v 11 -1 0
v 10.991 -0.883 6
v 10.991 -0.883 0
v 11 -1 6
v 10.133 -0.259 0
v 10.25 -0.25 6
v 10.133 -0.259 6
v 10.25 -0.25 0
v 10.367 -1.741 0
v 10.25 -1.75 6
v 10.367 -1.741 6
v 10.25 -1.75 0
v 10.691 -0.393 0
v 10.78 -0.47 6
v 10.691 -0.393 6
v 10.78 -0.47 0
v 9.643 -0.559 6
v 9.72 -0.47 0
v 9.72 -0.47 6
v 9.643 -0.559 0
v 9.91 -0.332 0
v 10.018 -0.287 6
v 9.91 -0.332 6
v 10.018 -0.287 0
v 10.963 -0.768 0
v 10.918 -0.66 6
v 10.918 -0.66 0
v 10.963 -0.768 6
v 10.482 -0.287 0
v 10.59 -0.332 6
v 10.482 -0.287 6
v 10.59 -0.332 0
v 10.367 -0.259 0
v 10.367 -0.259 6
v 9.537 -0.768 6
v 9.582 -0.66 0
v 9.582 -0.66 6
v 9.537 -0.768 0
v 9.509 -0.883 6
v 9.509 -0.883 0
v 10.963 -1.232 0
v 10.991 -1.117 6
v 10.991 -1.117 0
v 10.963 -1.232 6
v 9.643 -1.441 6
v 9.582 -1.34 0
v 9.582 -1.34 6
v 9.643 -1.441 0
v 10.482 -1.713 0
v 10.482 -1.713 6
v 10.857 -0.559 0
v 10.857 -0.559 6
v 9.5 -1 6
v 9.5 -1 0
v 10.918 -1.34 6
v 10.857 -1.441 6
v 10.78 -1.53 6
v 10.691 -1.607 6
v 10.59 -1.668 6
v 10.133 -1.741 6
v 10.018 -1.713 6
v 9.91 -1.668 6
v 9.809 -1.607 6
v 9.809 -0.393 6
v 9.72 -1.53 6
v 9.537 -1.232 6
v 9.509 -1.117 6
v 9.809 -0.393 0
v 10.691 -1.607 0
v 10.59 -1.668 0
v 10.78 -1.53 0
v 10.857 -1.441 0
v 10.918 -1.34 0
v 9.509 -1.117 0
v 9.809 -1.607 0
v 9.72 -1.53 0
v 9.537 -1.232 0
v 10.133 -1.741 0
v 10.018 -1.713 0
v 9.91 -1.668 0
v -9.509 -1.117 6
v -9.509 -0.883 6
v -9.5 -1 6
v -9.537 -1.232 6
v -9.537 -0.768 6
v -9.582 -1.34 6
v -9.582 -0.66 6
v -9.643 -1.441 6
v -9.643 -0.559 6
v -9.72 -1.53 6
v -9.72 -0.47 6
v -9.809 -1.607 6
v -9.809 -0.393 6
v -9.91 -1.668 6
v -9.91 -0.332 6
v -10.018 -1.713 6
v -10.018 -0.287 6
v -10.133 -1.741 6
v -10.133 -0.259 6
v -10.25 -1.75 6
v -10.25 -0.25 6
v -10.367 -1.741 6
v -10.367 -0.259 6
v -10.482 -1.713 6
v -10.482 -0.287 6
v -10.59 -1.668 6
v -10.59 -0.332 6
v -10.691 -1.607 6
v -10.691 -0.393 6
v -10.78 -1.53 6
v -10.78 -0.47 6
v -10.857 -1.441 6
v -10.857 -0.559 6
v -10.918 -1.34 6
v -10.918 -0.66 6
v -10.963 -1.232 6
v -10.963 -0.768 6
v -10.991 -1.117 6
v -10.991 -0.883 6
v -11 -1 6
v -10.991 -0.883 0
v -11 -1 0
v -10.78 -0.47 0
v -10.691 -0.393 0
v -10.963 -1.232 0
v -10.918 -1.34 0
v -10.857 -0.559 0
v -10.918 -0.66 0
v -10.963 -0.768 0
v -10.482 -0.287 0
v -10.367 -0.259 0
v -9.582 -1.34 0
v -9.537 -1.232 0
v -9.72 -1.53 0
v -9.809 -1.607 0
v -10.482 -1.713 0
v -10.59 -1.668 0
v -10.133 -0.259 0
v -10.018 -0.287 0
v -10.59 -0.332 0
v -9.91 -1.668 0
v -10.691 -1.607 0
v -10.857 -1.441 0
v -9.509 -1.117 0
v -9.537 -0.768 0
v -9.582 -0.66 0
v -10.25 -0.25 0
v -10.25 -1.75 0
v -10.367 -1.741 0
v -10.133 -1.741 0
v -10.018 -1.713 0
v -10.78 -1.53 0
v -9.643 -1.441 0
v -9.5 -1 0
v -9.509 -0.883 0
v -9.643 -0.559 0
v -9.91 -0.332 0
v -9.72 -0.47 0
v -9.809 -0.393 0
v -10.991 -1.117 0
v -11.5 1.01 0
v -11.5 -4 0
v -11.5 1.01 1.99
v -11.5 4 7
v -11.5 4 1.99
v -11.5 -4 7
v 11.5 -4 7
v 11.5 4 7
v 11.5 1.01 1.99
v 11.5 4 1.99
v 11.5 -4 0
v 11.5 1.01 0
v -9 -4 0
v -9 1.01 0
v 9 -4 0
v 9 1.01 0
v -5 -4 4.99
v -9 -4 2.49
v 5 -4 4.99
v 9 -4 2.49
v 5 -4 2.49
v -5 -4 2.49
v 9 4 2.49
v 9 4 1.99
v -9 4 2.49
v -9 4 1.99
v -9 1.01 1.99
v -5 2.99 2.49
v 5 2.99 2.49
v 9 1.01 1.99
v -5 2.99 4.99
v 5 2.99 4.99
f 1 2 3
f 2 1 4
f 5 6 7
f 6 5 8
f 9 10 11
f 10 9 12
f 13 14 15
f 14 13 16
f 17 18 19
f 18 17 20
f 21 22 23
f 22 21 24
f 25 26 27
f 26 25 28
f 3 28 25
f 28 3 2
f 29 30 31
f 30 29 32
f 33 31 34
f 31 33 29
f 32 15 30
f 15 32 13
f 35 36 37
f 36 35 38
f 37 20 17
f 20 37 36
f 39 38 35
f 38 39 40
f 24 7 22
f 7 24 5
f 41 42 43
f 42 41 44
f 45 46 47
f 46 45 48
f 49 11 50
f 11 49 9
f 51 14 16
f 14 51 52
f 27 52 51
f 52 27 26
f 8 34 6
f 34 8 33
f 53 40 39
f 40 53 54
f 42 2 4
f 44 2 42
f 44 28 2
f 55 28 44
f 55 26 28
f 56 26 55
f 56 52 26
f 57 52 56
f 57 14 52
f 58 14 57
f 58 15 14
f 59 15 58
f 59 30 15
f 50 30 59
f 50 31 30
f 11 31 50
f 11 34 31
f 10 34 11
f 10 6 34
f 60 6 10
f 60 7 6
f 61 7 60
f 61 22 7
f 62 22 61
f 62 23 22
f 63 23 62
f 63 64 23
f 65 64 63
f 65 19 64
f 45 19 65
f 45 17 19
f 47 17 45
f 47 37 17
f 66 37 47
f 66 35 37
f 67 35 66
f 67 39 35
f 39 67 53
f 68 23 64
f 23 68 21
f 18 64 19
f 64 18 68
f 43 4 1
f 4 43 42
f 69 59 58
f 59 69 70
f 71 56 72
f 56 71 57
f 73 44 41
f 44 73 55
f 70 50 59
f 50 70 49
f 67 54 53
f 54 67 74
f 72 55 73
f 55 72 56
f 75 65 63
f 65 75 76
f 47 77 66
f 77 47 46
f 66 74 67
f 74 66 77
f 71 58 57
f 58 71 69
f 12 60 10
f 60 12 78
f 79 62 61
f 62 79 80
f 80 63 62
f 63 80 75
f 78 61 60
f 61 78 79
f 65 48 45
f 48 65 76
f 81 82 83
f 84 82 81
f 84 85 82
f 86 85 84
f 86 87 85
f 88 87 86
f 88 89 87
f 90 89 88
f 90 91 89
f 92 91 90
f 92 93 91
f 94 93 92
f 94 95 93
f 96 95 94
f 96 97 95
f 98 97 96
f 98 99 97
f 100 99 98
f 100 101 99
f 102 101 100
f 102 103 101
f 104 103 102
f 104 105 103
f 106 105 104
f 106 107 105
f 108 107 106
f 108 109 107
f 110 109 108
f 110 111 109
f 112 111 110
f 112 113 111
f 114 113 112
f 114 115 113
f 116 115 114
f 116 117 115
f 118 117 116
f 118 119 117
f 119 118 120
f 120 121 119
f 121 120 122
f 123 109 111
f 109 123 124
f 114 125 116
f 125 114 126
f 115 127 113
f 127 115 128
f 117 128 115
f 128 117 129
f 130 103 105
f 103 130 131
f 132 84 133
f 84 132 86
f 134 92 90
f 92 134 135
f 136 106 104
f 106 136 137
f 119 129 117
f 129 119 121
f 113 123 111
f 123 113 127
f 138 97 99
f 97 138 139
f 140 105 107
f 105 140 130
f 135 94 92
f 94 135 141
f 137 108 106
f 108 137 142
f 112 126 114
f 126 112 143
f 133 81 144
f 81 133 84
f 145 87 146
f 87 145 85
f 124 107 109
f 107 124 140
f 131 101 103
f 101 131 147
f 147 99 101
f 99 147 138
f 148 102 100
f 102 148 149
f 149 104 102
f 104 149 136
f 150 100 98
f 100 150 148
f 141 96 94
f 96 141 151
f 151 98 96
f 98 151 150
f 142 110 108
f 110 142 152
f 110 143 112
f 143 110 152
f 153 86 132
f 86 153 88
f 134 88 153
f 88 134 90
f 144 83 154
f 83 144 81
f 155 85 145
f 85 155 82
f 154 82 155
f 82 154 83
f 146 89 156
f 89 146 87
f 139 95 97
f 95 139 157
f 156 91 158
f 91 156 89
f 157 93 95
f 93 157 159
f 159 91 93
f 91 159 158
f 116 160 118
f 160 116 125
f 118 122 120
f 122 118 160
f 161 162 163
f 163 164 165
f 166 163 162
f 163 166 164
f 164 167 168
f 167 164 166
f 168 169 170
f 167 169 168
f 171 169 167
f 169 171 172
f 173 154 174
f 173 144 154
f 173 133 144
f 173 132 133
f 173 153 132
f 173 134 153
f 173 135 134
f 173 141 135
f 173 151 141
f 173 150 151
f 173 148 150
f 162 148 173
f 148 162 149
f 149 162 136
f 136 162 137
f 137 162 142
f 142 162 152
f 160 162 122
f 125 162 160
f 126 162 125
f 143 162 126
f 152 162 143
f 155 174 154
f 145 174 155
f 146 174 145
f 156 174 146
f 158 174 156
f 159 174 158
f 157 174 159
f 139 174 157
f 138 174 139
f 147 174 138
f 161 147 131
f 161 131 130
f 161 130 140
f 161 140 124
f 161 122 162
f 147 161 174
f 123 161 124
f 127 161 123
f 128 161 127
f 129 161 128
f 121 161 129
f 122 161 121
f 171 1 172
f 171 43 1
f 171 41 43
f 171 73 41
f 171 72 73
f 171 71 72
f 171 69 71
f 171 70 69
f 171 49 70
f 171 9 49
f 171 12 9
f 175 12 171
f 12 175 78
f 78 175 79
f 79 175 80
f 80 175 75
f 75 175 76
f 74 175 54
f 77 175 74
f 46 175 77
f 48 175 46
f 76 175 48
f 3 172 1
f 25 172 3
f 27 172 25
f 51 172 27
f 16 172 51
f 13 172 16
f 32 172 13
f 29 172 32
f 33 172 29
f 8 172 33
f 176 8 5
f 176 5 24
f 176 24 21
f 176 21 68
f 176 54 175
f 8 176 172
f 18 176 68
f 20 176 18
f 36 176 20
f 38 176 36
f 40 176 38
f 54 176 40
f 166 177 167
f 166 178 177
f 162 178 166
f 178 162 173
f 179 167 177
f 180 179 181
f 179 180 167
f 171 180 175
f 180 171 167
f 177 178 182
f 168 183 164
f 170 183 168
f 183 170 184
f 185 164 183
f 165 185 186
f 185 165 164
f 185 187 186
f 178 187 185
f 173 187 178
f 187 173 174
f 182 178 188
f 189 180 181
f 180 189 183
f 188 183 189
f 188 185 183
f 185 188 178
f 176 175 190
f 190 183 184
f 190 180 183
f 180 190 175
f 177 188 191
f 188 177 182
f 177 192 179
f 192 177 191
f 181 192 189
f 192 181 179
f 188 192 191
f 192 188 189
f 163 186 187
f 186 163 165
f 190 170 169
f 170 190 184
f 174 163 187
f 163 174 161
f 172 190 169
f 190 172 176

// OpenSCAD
// file: scad-utils/mirror.scad
// Copyright (c) 2013 Oskar Linde. All rights reserved.
// License: BSD
//
// This library contains simple mirroring functions
//
// mirror_x()
// mirror_y()
// mirror_z()


module mirror_x() {
  union() {
    child();
    scale([-1,1,1]) child();
  }
}

module mirror_y() {
  union() {
    child();
    scale([1,-1,1]) child();
  }
}

module mirror_z() {
  union() {
    child();
    scale([1,1,-1]) child();
  }
}
// main file
$fn=40;

include <scad-utils/mirror.scad>

BODY_X=23;
BODY_Y=8;
BODY_Z=7;

difference(){
  //body
  translate([0, 0, BODY_Z/2]) 
  cube(size=[BODY_X, BODY_Y, BODY_Z], center=true);

  // PCB
  translate([0, 0, 2.5/2-0.01]) 
  cube(size=[18, BODY_Y+1, 2.5], center=true);

  // usb connector
  translate([0, -BODY_Y/2 + 7/2 - 0.01, 5/2-0.01]) 
  cube(size=[10, 7, 5], center=true);

  // PCB(rear)
  translate([0, BODY_Y/2 - 3/2 + 0.01, 2/2-0.01]) 
  cube(size=[BODY_X+1, 3, 2], center=true);

  // screw holes
  mirror_x()
  translate([20.5/2, -BODY_Y/2+3, -1]) 
  cylinder(d=1.5, h=BODY_Z, center=!true);
}
